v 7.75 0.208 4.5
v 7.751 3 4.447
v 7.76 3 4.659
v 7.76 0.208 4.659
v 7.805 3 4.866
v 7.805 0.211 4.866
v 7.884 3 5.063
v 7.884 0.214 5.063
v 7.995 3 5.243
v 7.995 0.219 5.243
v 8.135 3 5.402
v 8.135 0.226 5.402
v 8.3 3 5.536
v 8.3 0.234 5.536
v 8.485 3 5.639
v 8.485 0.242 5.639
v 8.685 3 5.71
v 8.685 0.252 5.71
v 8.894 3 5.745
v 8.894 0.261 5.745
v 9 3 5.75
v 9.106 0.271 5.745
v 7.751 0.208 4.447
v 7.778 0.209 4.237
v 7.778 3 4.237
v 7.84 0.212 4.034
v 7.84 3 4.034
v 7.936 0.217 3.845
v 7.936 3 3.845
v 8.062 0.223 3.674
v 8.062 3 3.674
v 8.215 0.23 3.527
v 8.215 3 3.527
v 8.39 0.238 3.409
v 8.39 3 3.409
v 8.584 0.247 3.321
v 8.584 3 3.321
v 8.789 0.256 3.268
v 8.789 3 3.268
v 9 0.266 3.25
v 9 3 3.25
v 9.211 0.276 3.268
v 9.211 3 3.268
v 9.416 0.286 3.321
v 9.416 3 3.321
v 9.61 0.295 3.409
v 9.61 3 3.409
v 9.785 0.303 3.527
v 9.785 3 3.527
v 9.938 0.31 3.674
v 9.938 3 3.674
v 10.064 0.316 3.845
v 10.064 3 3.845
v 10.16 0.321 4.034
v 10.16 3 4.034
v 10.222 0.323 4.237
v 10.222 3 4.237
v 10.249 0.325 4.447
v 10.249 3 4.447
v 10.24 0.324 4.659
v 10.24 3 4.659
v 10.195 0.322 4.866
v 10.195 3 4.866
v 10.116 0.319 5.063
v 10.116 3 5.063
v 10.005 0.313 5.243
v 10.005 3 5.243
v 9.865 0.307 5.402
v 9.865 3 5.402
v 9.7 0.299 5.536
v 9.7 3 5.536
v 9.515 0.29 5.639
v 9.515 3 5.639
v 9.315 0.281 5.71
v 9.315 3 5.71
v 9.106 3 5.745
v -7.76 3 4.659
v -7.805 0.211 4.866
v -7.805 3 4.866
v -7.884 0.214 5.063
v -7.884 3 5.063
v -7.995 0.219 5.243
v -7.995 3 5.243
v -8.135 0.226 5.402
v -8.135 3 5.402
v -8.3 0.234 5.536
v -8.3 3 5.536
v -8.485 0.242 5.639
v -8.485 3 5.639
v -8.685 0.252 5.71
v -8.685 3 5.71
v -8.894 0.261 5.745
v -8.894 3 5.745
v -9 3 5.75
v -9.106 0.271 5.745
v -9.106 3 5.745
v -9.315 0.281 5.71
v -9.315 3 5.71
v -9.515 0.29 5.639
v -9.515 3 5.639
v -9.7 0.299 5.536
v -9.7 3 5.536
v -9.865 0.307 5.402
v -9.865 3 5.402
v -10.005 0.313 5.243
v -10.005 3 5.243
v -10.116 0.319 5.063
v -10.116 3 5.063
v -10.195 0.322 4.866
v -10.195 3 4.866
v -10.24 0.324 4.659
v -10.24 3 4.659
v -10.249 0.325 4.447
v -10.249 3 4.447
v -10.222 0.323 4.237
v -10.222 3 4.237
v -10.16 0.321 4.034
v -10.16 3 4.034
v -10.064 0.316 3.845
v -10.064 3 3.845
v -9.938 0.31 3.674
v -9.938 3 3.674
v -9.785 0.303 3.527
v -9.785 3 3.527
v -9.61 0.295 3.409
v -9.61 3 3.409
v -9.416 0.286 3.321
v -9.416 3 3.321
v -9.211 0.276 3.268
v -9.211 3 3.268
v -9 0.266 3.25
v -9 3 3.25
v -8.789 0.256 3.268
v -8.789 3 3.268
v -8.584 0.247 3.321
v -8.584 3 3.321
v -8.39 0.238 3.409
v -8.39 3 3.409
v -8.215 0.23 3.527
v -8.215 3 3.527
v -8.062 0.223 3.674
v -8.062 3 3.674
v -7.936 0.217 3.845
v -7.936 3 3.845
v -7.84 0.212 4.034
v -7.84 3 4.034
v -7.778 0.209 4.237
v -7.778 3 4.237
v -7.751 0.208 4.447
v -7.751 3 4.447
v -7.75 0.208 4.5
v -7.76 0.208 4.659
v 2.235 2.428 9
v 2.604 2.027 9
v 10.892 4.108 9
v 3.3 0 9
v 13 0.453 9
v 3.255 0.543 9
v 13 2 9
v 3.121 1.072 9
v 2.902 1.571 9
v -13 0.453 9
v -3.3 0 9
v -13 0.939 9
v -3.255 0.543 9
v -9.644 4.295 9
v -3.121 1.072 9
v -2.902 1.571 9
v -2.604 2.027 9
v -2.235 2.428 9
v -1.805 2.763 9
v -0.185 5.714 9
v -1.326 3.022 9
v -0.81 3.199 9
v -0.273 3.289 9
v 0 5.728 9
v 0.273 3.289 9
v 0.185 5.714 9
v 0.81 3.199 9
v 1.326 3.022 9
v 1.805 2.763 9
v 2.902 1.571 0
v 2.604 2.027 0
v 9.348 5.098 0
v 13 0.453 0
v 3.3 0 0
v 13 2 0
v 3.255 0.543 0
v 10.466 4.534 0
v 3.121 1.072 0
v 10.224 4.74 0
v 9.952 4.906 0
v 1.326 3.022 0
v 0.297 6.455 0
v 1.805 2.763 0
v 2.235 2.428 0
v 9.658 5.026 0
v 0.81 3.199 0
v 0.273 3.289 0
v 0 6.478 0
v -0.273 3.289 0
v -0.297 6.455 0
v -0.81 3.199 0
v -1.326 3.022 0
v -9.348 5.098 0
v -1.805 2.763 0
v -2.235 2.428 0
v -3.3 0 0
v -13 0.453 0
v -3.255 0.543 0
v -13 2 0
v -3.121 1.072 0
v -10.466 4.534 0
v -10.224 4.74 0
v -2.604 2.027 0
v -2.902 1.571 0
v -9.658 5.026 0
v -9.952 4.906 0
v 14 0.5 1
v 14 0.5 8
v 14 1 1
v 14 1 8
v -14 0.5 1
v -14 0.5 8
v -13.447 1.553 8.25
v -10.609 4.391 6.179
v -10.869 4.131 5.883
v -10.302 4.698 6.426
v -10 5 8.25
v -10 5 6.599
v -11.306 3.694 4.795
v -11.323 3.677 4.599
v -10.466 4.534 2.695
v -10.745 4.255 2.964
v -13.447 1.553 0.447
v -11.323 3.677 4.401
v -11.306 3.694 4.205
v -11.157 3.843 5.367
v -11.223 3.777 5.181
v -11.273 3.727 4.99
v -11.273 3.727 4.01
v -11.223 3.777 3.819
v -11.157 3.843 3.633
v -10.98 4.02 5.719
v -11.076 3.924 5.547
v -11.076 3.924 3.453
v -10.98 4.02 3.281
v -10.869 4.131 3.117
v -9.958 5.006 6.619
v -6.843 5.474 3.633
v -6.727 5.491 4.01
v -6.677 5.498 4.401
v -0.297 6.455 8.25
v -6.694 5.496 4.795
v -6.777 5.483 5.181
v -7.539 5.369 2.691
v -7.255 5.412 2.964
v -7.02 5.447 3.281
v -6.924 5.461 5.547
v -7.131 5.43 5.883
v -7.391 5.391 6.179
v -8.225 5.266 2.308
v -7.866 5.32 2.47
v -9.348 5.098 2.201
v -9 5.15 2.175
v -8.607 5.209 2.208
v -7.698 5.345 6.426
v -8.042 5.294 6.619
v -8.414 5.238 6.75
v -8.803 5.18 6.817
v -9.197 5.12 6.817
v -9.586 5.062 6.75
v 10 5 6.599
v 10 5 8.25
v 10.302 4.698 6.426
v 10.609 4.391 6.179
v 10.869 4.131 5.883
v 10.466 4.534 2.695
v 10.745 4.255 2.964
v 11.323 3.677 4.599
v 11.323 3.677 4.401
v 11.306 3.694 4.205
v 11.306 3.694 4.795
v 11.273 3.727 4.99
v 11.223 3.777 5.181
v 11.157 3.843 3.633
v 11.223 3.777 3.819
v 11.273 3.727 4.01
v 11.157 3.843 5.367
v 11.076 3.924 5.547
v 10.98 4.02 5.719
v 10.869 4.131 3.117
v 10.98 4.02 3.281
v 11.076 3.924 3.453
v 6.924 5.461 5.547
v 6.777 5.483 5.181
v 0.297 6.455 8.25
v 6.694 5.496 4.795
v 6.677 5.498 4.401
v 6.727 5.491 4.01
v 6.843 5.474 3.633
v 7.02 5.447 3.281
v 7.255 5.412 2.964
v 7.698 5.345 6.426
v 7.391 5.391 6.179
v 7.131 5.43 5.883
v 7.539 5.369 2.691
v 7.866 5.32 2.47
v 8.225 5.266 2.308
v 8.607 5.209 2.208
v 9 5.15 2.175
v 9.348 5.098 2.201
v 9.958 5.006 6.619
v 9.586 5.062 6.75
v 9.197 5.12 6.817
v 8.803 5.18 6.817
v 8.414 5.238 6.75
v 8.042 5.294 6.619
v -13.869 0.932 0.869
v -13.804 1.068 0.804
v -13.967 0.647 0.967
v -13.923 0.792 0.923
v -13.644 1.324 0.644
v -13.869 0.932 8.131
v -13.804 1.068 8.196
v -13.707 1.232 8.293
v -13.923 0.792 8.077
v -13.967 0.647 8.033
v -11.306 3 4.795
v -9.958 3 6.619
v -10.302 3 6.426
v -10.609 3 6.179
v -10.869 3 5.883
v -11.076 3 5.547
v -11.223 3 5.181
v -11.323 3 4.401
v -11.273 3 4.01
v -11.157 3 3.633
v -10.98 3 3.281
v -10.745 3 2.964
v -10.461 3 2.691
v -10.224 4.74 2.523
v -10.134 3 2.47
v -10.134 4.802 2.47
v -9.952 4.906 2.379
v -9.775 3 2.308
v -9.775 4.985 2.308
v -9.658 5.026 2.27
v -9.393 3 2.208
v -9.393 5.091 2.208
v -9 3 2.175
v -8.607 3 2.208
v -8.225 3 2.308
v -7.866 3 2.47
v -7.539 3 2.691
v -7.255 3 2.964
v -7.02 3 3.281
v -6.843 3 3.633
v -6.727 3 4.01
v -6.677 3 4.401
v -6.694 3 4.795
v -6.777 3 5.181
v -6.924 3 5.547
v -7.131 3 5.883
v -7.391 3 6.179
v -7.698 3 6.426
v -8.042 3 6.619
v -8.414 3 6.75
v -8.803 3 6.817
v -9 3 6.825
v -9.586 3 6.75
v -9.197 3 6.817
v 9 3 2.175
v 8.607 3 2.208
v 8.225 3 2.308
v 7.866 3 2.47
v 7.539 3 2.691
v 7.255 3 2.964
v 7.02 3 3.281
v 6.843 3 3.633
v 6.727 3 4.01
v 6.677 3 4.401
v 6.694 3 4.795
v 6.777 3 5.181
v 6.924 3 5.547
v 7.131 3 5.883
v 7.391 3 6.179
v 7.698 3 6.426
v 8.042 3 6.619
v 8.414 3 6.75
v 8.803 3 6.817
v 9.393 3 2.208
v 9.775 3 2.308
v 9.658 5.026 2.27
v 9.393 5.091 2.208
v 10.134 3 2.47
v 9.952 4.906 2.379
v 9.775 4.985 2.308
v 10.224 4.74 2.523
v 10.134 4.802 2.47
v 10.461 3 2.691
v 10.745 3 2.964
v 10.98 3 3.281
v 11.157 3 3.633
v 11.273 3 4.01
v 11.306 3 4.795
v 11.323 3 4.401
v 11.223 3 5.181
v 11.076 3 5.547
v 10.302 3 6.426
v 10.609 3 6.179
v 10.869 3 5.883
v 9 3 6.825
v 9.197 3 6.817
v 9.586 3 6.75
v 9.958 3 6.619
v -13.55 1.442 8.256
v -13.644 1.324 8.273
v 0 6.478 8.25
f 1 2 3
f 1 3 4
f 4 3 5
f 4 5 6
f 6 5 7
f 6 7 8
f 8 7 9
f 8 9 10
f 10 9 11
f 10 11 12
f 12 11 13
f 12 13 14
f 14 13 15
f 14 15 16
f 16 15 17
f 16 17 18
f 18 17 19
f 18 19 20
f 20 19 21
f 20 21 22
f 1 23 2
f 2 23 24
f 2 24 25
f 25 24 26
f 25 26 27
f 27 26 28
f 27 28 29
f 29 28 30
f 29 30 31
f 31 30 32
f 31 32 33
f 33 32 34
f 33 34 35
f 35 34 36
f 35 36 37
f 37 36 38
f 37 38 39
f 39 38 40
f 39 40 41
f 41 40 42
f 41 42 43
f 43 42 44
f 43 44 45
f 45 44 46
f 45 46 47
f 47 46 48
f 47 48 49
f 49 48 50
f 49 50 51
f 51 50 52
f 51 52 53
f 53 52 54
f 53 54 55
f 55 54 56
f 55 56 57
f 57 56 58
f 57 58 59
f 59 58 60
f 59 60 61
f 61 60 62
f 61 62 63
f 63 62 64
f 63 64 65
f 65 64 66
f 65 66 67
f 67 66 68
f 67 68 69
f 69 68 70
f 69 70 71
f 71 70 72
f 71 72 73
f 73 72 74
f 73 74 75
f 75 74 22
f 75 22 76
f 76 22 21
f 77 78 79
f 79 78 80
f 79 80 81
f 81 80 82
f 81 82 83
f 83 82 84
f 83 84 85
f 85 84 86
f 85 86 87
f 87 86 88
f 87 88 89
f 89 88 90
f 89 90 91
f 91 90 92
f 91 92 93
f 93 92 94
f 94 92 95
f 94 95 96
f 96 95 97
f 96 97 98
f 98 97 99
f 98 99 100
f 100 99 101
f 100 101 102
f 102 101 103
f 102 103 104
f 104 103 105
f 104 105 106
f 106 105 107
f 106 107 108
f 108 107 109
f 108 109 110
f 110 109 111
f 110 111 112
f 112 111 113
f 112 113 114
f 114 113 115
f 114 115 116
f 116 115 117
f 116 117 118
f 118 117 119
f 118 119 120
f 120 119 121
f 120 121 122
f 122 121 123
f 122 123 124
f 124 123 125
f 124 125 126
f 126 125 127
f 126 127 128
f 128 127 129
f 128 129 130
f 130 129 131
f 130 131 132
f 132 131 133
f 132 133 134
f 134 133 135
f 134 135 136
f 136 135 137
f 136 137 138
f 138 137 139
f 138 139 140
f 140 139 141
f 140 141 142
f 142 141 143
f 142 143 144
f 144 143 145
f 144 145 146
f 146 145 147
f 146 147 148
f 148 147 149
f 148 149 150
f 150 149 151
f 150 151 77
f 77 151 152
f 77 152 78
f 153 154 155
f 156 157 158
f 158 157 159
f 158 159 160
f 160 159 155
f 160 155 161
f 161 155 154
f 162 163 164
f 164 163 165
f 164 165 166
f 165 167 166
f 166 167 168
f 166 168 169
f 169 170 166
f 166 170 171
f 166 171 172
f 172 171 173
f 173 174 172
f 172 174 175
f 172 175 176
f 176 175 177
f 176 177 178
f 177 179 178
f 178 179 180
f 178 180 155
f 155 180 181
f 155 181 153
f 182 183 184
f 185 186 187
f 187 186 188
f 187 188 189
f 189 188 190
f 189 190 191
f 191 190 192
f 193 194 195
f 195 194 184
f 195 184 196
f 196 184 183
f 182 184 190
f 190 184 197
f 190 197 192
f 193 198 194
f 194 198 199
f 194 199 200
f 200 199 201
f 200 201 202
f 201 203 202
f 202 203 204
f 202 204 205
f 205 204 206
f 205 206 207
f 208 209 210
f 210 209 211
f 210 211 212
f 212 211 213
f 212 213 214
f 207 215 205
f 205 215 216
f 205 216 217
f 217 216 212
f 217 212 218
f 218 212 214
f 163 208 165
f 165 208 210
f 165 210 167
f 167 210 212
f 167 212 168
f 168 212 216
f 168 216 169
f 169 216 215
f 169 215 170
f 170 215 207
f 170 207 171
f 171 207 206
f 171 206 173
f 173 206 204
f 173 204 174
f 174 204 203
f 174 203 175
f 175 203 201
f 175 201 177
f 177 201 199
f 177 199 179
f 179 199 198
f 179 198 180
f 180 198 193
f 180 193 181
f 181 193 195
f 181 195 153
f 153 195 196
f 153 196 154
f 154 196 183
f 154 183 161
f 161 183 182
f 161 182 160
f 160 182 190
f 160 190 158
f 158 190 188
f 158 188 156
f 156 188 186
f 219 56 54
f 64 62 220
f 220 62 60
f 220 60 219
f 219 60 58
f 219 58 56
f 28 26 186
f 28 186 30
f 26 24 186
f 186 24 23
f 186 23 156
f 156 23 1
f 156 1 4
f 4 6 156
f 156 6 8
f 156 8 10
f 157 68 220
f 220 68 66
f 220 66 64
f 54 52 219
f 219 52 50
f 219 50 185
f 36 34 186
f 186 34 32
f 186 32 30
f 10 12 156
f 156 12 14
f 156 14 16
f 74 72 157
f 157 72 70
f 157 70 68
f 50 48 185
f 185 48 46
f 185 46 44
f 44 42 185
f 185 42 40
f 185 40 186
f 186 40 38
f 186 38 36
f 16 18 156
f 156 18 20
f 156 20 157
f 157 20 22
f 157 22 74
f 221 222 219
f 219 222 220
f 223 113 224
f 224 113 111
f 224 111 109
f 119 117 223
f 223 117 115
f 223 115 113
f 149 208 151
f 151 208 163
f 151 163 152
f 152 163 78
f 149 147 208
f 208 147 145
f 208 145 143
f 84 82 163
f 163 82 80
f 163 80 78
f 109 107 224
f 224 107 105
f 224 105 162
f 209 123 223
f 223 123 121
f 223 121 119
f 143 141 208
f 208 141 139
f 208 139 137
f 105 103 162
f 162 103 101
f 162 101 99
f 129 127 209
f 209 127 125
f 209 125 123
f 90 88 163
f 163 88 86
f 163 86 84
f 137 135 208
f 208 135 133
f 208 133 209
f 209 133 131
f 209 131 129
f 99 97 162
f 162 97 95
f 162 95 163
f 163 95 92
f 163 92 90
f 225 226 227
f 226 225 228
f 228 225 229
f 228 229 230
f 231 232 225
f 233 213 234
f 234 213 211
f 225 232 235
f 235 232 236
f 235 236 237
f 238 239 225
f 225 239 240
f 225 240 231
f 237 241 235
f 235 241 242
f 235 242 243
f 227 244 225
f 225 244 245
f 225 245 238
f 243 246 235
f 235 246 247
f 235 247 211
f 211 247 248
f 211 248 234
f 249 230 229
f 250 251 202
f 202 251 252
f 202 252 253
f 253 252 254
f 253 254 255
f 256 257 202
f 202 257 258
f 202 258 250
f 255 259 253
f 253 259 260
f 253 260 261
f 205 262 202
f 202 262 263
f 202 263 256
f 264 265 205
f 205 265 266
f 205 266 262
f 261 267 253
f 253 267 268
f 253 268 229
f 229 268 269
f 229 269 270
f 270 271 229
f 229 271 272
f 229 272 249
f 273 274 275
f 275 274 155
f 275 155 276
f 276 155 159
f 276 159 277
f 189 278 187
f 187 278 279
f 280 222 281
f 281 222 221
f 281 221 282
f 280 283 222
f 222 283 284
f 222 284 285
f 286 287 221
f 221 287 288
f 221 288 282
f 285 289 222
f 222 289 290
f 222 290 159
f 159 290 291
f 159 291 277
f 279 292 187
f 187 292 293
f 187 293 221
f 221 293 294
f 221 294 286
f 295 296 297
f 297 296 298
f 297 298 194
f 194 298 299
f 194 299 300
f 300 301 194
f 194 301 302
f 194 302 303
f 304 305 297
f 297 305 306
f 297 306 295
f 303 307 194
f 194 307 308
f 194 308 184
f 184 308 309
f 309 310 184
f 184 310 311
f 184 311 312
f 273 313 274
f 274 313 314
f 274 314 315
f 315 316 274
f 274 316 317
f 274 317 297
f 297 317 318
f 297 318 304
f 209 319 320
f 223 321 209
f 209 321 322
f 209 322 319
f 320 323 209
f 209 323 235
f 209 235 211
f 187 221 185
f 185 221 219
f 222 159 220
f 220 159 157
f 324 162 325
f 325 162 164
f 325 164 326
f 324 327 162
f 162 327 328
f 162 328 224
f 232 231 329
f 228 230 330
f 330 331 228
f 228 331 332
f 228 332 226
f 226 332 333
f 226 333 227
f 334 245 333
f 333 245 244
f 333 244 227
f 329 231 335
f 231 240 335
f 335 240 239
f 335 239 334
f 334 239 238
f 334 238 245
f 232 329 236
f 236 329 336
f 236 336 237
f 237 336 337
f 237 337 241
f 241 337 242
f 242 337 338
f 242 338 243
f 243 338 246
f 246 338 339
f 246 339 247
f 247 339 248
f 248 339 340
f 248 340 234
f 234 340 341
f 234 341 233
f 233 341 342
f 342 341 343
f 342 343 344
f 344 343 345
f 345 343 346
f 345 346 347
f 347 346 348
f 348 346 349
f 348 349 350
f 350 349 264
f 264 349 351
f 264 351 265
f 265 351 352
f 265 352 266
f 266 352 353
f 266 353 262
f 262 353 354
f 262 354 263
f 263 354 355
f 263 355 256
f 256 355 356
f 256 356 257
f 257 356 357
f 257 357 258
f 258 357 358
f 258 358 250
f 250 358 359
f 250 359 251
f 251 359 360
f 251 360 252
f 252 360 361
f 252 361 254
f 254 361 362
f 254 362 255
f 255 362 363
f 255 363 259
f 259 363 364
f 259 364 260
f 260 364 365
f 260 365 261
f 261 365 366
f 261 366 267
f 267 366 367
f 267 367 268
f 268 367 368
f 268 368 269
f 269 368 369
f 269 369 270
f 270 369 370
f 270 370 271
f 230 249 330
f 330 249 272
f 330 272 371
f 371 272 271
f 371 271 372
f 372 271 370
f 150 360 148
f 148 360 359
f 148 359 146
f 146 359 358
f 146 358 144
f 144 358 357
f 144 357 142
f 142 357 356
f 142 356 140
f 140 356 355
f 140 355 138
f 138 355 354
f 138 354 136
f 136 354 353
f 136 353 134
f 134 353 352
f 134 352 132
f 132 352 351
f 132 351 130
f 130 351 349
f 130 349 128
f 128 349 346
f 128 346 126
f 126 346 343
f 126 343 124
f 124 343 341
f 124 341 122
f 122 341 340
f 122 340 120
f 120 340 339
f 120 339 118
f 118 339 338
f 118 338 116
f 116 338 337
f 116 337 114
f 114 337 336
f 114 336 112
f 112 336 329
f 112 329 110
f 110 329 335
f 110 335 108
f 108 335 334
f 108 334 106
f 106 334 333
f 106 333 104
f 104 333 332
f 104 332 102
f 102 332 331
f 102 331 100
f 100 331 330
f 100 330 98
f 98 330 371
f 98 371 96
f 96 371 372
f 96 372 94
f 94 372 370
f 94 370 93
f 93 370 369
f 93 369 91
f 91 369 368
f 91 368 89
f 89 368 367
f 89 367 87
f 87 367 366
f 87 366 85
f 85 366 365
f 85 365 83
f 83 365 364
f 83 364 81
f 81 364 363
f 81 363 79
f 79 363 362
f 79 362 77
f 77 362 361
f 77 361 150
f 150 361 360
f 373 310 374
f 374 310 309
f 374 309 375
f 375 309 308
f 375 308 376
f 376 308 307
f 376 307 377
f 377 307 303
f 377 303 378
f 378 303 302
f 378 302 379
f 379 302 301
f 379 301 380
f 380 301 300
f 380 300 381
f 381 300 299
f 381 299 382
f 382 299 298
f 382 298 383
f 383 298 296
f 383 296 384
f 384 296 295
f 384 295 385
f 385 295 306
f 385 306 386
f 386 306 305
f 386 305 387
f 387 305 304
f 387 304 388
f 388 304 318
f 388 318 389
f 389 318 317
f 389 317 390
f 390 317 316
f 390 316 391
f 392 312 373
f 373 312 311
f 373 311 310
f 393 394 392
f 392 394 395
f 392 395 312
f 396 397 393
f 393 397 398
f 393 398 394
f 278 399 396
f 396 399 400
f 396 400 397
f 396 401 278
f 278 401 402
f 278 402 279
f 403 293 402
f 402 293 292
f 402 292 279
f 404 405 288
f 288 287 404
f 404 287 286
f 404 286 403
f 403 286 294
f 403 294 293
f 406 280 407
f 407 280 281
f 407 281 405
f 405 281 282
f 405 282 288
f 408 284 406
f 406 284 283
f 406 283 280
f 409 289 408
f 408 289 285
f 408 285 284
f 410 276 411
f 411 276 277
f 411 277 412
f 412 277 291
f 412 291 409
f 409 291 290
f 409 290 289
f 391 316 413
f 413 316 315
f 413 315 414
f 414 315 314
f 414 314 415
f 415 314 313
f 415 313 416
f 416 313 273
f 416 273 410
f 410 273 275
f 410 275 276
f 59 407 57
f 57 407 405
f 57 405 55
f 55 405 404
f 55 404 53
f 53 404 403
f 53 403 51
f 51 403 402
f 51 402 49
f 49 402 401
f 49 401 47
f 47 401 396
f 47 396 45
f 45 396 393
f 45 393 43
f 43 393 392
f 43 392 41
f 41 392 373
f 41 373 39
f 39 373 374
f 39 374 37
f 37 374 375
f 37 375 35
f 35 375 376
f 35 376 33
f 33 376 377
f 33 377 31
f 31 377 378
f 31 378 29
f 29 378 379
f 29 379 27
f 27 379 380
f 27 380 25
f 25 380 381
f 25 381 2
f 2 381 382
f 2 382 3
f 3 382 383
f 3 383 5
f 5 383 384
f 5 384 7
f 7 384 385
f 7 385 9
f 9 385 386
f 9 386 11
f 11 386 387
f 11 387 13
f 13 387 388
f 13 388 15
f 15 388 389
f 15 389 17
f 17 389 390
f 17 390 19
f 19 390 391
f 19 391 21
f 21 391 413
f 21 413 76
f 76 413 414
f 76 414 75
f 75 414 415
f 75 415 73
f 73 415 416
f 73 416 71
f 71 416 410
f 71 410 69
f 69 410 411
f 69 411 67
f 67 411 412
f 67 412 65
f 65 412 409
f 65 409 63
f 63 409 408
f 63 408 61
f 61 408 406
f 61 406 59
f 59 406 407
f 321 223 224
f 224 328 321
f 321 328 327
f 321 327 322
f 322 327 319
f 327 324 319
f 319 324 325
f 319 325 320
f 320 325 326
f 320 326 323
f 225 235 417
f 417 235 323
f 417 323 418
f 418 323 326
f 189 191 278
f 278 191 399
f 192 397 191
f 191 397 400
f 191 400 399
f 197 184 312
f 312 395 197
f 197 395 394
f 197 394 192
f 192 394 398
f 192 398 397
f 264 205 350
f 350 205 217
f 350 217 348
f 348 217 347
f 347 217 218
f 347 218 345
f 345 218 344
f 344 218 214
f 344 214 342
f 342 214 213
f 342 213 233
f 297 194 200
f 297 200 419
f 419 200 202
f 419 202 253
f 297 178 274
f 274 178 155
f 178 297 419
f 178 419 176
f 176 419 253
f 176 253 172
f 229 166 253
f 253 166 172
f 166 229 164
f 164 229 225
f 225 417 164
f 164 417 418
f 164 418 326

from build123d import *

# Parameters (mm, degrees)
BOSS_EXTRUDE1_DEPTH     = 9
CUT_EXTRUDE1_DEPTH      = 18.867568385
CUT_EXTRUDE1_DEPTH_BACK = 18.867568385
CHAMFER1_SIZE           = 1
SKETCH4_R               = 1.25
CUT_EXTRUDE2_DEPTH      = 18.867568385
CUT_EXTRUDE3_START      = 3
SKETCH5_R               = 2.325
CUT_EXTRUDE3_DEPTH      = 10
FILLET2_R               = 2
CHAMFER3_SIZE           = 0.75


with BuildPart() as part:
    # Sketch1 → Boss-Extrude1 (new body)
    with BuildSketch(Plane.XY):
        with BuildLine():
            Line((-14, 0.5), (-14, 6.5))
            Line((-14, 6.5), (14, 6.5))
            Line((14, 6.5), (14, 0.5))
            Line((14, 0.5), (3.3, 0))
            ThreePointArc((3.3, 0), (0, 3.3), (-3.3, 0))
            Line((-3.3, 0), (-14, 0.5))
        make_face()
    extrude(amount=BOSS_EXTRUDE1_DEPTH)

    # Sketch2 → Cut-Extrude1 (cut, two sides: drawn at the far end of the back side and taken through both)
    with BuildSketch(Plane.XY.offset(9).offset(-CUT_EXTRUDE1_DEPTH_BACK)):
        Polygon((-10, 5), (0, 6.5), (-14, 6.5), (-14, 1), align=None)
        Polygon((14, 6.5), (0, 6.5), (10, 5), (14, 1), align=None)
    extrude(amount=CUT_EXTRUDE1_DEPTH + CUT_EXTRUDE1_DEPTH_BACK, mode=Mode.SUBTRACT)

    # Chamfer1
    chamfer1_edges = [part.edges().sort_by_distance(p)[0] for p in [
        (14, 0.75, 9),
        (-14, 0.75, 0),
        (-14, 0.75, 9),
        (14, 0.75, 0),
    ]]
    chamfer(chamfer1_edges, length=CHAMFER1_SIZE)

    # Sketch4 → Cut-Extrude2 (cut, through all)
    with BuildSketch(Plane(origin=(0, 0, 0), x_dir=(-1, 0, 0), z_dir=(0, 1, 0))):
        with Locations(Location((-9, 4.5, 0), (0, 0, 216.869897646))):
            Circle(SKETCH4_R)
        with Locations(Location((9, 4.5, 0), (0, 0, 323.130102354))):
            Circle(SKETCH4_R)
    extrude(amount=CUT_EXTRUDE2_DEPTH, mode=Mode.SUBTRACT)

    # Sketch5 → Cut-Extrude3 (cut)
    with BuildSketch(Plane(origin=(0, 0, 0), x_dir=(1, 0, 0), z_dir=(0, 1, 0)).offset(CUT_EXTRUDE3_START)):
        with Locations(Location((9, -4.5, 0), (0, 0, 64.525615739))):
            Circle(SKETCH5_R)
        with Locations(Location((-9, -4.5, 0), (0, 0, 115.474384261))):
            Circle(SKETCH5_R)
    extrude(amount=CUT_EXTRUDE3_DEPTH, mode=Mode.SUBTRACT)

    # Fillet2
    # the kernel refuses this fillet: 2 mm, written as the material it takes off along each edge
    with BuildSketch(Plane(origin=(10, 5, -1.647264498), x_dir=(0.7071067811865476, -0.7071067811865476, 0), z_dir=(0, 0, 1)), Plane(origin=(-10, 5, 4.048306423), x_dir=(-0.7071067811865476, -0.7071067811865476, 0), z_dir=(0, 0, -1))) as fillet2_piece_1:
        with BuildLine():
            CenterArc((FILLET2_R * 0.329452899538, -FILLET2_R), FILLET2_R, 90, 36.46923439)
            Line((-FILLET2_R * 0.264938161546, -FILLET2_R * 0.195823858534), (-FILLET2_R * 0.276825982767, -FILLET2_R * 0.179740335704))
            Line((-FILLET2_R * 0.276825982767, -FILLET2_R * 0.179740335704), (-FILLET2_R * 0.00658905799077, FILLET2_R * 0.02))
            Line((-FILLET2_R * 0.00658905799077, FILLET2_R * 0.02), (FILLET2_R * 0.329452899538, FILLET2_R * 0.02))
            Line((FILLET2_R * 0.329452899538, FILLET2_R * 0.02), (FILLET2_R * 0.329452899538, 0))
        make_face()
    extrude(amount=5.695570921, mode=Mode.SUBTRACT)
    with BuildSketch(Plane(origin=(0, 6.5, 9.75), x_dir=(0.9889363528682978, -0.1483404529302431, 0), z_dir=(0, 0, -1))) as fillet2_piece_2:
        with BuildLine():
            CenterArc((FILLET2_R * 0.15, FILLET2_R), FILLET2_R, 252.93846878, 17.06153122)
            Line((-FILLET2_R * 0.143398533007, FILLET2_R * 0.0440097799511), (-FILLET2_R * 0.149266503667, FILLET2_R * 0.0248899755501))
            Line((-FILLET2_R * 0.149266503667, FILLET2_R * 0.0248899755501), (-FILLET2_R * 0.003, -FILLET2_R * 0.02))
            Line((-FILLET2_R * 0.003, -FILLET2_R * 0.02), (FILLET2_R * 0.15, -FILLET2_R * 0.02))
            Line((FILLET2_R * 0.15, -FILLET2_R * 0.02), (FILLET2_R * 0.15, 0))
        make_face()
    extrude(amount=10.5, mode=Mode.SUBTRACT)
    with BuildSketch(Plane(origin=(-14, 1, -0.95470504), x_dir=(0, -1, 0), z_dir=(0, 0, 1))) as fillet2_piece_3:
        with BuildLine():
            CenterArc((0.861339487, 1.967087638), FILLET2_R, 225, 34.591227114)
            Line((-0.552874076, 0.552874076), (-0.581158347, 0.524589804))
            Line((-0.581158347, 0.524589804), (-0.028284271, -0.028284271))
            Line((-0.028284271, -0.028284271), (0, -0.04))
            ThreePointArc((0, -0.04), (0.25, -0.04), (0.49277321, -0.039341753))
            Line((0.49277321, -0.039341753), (0.5, 0))
        make_face()
    extrude(amount=10.90941008, mode=Mode.SUBTRACT)

    # Chamfer3
    # the kernel refuses this chamfer: 0.75 mm, written as the material it takes off along each edge
    with BuildSketch(Plane(origin=(-14.36384086, 0.63615914, 9), x_dir=(0.7068394360706732, -0.7068394360706737, 0.027495876610586747), z_dir=(0.7071067811865477, 0.7071067811865474, 0))) as chamfer3_piece_1:
        Polygon((CHAMFER3_SIZE * 0.999621916911, CHAMFER3_SIZE * 0.0274958766106), (-CHAMFER3_SIZE * 0.0274958766106, CHAMFER3_SIZE * 0.999621916911), (0, 0), align=None)
    extrude(amount=8.100165169, mode=Mode.SUBTRACT)
    with BuildSketch(Plane(origin=(-11.907423096, 4.713886536, 9), x_dir=(0.1482843679136212, -0.988562452757474, 0.027495876610586778), z_dir=(0.9889363528682975, 0.14834045293024473, 0)), Plane(origin=(0.296680906, 6.455497864, 9), x_dir=(-0.14828436791362096, -0.9885624527574741, 0.02749587661058676), z_dir=(0.9889363528682976, -0.14834045293024448, 0))) as chamfer3_piece_2:
        Polygon((CHAMFER3_SIZE * 0.999621916911, CHAMFER3_SIZE * 0.0274958766106), (-CHAMFER3_SIZE * 0.0274958766106, CHAMFER3_SIZE * 0.999621916911), (0, 0), align=None)
    extrude(amount=11.740636449, mode=Mode.SUBTRACT)
    with BuildSketch(Plane(origin=(0, 4.477625158, 9), x_dir=(0.1483404529300489, 0.9889363528683269, 0), z_dir=(0.9889363528683269, -0.1483404529300489, 0))) as chamfer3_piece_3:
        Polygon((2 - CHAMFER3_SIZE, 0), (2, -CHAMFER3_SIZE), (2, 0), align=None)
    revolve(axis=Axis((0, 4.477625158, 9), (0, 0, 1)), revolution_arc=17.06153122, mode=Mode.SUBTRACT)


solid = part.part
